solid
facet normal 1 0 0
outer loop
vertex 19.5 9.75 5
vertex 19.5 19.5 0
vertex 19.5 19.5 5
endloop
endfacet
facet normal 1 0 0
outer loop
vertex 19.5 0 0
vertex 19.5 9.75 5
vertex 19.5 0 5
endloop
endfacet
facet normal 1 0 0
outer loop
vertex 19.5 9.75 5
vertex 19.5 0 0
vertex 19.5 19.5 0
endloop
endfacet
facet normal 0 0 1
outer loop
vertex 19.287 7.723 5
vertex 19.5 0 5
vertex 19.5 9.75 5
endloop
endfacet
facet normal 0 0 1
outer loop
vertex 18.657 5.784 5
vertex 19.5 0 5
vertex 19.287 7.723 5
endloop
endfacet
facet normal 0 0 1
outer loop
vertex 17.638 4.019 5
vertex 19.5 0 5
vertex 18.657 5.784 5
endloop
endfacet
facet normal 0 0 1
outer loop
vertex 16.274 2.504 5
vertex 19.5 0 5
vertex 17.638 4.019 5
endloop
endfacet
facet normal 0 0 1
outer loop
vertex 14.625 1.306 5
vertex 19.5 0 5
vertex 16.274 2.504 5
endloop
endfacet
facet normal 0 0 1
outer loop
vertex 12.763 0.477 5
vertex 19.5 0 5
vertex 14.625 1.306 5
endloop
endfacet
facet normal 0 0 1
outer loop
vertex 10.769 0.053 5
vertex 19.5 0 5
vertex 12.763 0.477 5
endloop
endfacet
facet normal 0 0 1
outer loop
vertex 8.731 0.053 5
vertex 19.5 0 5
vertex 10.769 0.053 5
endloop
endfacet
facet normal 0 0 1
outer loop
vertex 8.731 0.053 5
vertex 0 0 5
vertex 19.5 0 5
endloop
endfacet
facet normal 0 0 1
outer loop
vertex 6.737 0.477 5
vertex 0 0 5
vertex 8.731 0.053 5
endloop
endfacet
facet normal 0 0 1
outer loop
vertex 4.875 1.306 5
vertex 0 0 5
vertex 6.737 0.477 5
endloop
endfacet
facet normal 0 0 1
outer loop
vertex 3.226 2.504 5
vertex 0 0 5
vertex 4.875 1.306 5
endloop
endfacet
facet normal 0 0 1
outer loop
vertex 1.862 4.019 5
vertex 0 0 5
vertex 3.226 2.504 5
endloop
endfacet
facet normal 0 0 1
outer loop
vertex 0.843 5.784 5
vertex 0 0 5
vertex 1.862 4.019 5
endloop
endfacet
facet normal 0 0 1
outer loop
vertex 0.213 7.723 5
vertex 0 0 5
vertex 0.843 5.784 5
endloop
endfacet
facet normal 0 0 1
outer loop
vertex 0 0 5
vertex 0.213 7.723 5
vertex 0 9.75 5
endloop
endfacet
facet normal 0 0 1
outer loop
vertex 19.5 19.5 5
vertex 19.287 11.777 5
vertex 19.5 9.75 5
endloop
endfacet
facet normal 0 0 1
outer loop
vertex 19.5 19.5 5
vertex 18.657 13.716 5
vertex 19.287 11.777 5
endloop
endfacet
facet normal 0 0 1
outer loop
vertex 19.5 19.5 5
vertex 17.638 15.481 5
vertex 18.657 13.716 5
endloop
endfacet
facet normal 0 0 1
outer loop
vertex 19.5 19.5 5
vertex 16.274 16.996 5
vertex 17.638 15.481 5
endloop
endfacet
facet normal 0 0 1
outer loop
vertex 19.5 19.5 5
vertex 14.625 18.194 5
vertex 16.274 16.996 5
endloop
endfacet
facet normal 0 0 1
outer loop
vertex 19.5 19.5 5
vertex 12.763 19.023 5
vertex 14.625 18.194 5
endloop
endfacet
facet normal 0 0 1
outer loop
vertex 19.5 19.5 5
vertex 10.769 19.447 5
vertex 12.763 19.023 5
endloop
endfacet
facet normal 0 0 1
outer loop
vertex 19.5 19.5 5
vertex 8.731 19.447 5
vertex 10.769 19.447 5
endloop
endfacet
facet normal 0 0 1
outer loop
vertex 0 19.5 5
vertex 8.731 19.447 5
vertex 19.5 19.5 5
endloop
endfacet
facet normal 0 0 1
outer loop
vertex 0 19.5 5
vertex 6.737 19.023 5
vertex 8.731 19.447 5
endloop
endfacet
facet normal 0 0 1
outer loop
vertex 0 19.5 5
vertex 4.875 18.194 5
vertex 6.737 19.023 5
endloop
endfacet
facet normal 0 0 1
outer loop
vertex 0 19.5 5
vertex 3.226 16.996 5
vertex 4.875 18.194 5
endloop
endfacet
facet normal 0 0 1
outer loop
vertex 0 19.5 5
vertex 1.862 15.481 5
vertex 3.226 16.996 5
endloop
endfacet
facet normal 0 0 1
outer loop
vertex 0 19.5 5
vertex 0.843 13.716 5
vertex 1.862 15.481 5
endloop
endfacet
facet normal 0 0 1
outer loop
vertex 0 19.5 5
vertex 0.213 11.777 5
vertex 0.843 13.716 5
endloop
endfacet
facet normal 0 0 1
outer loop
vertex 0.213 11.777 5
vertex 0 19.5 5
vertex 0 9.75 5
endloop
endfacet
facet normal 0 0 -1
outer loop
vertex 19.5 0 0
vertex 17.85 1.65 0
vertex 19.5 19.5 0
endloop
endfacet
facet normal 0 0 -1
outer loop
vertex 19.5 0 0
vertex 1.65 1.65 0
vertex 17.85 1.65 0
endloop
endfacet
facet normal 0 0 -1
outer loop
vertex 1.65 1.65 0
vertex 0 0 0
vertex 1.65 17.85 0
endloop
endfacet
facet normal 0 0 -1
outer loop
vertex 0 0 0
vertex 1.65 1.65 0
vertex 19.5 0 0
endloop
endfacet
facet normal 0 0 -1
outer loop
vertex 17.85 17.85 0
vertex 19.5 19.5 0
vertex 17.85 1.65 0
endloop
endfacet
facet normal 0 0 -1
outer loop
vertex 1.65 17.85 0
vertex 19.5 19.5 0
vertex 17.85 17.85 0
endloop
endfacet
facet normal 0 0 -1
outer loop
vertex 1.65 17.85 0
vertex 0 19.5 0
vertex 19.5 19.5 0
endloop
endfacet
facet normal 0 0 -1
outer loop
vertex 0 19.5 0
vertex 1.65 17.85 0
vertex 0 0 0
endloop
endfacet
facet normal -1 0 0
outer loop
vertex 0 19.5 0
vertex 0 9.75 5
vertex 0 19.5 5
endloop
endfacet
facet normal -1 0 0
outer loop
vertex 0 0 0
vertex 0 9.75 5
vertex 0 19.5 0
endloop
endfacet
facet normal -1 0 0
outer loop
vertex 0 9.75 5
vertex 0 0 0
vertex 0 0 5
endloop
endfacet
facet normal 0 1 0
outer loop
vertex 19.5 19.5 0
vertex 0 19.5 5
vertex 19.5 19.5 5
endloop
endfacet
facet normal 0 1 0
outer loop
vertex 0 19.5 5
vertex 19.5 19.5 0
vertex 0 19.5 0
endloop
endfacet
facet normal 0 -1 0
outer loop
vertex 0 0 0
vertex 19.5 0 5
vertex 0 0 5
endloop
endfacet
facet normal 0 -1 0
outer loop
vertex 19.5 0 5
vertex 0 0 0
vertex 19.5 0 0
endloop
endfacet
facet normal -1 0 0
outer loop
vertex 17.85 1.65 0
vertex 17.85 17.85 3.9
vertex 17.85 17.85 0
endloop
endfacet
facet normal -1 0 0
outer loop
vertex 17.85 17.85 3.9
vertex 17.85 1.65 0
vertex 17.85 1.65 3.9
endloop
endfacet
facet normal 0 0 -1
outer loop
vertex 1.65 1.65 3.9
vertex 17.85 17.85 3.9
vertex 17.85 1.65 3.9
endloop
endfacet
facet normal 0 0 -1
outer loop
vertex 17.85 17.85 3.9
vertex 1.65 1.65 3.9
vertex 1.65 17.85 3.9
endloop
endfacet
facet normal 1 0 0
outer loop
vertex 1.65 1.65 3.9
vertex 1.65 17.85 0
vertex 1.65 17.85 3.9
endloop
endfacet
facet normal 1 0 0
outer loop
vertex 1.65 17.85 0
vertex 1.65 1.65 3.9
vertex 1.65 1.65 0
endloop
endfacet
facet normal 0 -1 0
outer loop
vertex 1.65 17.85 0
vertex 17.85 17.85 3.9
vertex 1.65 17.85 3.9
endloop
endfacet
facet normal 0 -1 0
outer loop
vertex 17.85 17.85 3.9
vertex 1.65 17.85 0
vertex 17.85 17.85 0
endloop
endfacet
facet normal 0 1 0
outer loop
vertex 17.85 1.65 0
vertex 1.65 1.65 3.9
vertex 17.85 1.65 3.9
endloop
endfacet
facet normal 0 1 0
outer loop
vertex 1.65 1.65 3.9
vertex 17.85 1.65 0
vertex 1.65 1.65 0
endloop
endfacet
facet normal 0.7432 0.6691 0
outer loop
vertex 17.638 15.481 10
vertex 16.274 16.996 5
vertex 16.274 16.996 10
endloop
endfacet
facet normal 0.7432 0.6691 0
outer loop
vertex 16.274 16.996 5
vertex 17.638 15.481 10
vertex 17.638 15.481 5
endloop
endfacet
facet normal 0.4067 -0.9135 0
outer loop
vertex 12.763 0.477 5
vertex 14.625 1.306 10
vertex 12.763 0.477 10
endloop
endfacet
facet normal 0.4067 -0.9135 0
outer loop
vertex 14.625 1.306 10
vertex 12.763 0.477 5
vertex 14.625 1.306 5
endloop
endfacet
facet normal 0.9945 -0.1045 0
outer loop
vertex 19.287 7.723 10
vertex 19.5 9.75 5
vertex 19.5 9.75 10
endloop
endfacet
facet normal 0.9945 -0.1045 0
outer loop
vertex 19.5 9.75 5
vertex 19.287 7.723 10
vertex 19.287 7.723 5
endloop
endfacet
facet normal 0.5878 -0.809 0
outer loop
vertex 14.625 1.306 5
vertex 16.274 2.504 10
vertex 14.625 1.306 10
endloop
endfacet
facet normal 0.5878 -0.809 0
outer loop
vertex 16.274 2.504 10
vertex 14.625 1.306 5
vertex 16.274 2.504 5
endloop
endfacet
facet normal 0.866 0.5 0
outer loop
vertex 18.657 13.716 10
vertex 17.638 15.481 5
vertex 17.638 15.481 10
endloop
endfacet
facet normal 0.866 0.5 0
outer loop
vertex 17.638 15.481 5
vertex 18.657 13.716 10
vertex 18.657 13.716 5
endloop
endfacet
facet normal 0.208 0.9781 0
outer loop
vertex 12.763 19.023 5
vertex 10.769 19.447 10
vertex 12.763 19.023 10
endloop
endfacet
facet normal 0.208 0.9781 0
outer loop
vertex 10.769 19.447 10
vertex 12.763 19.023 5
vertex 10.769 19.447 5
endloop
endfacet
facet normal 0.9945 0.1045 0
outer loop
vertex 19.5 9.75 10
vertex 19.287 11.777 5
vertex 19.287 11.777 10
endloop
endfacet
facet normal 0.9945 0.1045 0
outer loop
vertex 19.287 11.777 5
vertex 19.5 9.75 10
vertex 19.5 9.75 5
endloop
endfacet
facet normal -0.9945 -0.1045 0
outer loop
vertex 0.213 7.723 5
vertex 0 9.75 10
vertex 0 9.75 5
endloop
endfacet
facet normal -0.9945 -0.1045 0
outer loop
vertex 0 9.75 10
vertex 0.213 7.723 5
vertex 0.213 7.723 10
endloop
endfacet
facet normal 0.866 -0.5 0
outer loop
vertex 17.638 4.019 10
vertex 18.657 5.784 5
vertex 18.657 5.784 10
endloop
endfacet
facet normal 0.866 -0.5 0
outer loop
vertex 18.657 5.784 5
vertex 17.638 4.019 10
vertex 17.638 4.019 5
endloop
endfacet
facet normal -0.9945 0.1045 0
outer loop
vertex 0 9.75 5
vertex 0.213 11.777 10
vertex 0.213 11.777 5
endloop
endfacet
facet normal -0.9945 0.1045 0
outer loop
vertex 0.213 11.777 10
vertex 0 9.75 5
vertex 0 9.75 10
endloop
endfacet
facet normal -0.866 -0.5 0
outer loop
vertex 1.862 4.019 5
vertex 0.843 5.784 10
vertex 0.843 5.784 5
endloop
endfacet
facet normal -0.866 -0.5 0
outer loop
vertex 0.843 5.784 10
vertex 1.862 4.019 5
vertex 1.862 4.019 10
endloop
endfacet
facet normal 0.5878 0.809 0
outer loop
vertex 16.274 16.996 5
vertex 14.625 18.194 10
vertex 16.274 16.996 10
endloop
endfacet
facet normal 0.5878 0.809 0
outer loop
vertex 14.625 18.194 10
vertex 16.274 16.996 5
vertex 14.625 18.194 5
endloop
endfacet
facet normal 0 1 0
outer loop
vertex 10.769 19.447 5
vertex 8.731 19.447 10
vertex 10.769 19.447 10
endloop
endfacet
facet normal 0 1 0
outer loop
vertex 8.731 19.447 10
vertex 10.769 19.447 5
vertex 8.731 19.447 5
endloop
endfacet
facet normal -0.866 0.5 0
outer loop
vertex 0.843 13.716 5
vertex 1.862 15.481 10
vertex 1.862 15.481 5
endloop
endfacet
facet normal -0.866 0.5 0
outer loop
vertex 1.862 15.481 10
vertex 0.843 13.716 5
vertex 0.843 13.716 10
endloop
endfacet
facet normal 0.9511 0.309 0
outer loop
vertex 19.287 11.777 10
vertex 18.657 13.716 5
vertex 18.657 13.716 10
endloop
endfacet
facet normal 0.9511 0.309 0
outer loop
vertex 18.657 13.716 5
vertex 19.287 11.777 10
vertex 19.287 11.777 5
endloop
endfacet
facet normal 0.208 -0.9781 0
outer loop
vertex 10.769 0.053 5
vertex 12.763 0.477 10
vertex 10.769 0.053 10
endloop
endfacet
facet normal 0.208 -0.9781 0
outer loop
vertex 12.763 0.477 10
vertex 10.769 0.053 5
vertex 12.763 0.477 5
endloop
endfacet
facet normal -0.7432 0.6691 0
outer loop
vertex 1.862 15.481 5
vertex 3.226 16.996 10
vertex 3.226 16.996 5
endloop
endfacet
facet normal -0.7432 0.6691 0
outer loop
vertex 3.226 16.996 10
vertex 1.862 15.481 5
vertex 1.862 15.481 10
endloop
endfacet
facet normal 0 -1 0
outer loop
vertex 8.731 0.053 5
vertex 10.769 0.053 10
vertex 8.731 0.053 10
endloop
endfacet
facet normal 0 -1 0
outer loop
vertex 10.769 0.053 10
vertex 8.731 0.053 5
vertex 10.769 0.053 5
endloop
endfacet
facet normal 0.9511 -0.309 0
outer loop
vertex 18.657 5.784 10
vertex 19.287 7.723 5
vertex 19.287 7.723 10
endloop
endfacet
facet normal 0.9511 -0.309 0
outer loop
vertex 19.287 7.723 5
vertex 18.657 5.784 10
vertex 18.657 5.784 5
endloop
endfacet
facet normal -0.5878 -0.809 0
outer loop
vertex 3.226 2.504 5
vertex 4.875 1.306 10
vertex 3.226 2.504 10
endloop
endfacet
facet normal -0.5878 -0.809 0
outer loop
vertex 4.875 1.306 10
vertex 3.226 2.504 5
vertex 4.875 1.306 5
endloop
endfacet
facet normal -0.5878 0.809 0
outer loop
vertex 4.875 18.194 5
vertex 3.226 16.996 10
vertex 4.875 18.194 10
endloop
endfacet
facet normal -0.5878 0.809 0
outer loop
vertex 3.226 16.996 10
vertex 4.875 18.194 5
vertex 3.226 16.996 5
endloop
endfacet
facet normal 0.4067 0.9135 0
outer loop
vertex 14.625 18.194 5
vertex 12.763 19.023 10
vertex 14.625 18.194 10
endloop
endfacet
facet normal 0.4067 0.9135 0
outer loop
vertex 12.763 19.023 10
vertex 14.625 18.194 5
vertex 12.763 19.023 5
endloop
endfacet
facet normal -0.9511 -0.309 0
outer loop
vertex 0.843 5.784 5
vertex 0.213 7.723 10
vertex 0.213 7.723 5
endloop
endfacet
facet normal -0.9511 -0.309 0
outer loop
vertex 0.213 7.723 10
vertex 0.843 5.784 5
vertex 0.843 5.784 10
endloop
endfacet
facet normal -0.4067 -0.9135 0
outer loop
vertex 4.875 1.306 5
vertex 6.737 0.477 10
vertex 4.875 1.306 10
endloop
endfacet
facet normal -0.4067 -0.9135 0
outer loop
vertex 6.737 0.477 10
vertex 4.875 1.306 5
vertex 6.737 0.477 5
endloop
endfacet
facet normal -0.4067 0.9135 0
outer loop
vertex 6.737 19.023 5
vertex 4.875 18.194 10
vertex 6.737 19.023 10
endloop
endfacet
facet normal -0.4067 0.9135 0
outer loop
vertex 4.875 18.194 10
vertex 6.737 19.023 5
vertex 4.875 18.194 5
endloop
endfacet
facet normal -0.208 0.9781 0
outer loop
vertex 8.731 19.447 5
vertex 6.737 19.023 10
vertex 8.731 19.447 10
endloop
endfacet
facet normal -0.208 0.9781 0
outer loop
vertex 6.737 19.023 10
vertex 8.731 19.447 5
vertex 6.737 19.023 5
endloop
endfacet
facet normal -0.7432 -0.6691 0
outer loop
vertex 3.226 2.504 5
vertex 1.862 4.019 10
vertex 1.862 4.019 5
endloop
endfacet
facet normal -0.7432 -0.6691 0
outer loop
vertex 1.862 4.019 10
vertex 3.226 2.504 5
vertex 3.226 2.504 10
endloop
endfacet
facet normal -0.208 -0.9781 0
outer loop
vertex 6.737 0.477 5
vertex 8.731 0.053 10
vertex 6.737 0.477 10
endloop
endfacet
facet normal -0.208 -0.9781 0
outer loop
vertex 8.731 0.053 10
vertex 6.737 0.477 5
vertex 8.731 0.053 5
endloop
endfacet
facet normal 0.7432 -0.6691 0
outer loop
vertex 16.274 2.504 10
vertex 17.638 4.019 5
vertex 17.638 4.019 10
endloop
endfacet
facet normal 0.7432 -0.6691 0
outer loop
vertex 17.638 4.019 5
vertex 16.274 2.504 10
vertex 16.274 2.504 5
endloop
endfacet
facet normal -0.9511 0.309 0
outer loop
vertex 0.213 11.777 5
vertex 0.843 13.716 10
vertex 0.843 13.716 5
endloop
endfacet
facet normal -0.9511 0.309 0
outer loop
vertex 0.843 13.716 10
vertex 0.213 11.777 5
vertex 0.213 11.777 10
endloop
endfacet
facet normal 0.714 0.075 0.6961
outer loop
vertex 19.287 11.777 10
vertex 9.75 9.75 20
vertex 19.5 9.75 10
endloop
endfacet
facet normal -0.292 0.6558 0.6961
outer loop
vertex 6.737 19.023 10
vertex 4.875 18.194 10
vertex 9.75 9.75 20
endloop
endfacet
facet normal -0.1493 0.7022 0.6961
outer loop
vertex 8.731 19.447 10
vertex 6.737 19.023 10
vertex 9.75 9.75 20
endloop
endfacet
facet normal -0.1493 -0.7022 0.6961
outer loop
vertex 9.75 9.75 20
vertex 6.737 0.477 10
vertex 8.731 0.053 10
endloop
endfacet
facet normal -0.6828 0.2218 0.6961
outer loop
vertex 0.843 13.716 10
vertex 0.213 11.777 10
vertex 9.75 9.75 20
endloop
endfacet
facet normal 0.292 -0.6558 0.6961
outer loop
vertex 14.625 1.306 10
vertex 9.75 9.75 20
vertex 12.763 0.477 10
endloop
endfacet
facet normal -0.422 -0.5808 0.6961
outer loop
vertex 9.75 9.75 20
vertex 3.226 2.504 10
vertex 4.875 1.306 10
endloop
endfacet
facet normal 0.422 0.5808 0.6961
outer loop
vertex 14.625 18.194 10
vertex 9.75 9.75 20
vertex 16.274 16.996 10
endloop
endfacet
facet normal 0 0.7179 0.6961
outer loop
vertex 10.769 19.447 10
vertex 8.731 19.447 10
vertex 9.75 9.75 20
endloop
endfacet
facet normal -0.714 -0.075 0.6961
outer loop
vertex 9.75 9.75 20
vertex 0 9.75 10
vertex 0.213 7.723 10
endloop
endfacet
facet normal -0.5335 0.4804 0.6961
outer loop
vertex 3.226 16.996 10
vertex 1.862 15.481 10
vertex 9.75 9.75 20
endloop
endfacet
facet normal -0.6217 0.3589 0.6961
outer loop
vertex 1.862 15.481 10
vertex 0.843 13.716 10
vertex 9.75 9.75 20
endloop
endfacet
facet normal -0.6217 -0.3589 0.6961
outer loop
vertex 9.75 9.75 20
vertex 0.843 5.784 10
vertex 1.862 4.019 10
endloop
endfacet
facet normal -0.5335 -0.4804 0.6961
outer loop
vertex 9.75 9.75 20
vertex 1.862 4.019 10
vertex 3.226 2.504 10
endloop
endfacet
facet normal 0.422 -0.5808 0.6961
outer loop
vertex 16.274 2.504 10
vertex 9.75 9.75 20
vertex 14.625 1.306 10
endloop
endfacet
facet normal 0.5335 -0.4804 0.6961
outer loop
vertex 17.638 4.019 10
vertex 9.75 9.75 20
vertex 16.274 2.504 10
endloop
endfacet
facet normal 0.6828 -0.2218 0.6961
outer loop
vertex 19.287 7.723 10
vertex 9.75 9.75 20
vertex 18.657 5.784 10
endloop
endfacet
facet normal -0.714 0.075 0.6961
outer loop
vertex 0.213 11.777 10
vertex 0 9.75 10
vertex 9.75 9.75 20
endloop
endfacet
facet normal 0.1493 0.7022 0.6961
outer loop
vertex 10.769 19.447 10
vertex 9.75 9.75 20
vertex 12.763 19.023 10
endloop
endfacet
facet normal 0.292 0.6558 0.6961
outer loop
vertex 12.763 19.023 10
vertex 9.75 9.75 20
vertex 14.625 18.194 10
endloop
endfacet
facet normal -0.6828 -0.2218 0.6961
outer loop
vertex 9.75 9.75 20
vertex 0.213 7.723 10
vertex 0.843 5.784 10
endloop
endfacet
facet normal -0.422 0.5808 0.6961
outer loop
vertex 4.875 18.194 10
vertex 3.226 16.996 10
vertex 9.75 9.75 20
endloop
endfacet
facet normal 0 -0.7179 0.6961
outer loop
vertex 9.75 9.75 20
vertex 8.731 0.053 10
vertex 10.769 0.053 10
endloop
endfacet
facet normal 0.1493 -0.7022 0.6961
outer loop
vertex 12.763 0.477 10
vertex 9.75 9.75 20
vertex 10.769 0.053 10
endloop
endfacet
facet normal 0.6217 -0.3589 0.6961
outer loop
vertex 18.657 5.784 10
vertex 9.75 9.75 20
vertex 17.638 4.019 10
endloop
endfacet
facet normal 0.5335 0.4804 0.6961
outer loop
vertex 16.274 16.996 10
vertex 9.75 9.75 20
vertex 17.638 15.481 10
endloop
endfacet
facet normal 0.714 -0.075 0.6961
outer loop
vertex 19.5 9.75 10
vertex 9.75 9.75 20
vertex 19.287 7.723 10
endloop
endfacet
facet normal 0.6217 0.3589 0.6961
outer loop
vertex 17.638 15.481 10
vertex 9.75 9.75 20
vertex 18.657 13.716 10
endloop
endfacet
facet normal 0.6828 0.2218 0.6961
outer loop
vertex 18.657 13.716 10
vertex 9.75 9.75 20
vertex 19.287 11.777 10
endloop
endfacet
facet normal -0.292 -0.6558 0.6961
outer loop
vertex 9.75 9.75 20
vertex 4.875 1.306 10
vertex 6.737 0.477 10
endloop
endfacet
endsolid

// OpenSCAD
// file: CommonModules.scad
//    $$$$$$\   $$$$$$\   $$$$$$\  $$\   $$\ $$$$$$\ $$$$$$$\  $$$$$$$$\ 
//    $$  __$$\ $$  __$$\ $$  __$$\ $$ |  $$ |\_$$  _|$$  __$$\ $$  _____|
//    $$ /  $$ |$$ /  \__|$$ /  $$ |$$ |  $$ |  $$ |  $$ |  $$ |$$ |      
//    $$$$$$$$ |$$ |      $$ |  $$ |$$ |  $$ |  $$ |  $$$$$$$  |$$$$$\    
//    $$  __$$ |$$ |      $$ |  $$ |$$ |  $$ |  $$ |  $$  __$$< $$  __|   
//    $$ |  $$ |$$ |  $$\ $$ $$\$$ |$$ |  $$ |  $$ |  $$ |  $$ |$$ |      
//    $$ |  $$ |\$$$$$$  |\$$$$$$ / \$$$$$$  |$$$$$$\ $$ |  $$ |$$$$$$$$\ 
//    \__|  \__| \______/  \___$$$\  \______/ \______|\__|  \__|\________|
//                            \___|                                      
//      
//       Print and play - OpenScad project - by Bekkalizer - GPLv3
// 
// This file is part of the Acquire stl project.
// Copyright (C) 2025 Bekkalizer
//
// Acquire stl project is free software: you can redistribute it and/or modify
// it under the terms of the GNU General Public License as published
// by the Free Software Foundation, either version 3 of the License,
// or (at your option) any later version.
//
// Acquire stl project is distributed in the hope that it will be useful,
// but WITHOUT ANY WARRANTY; without even the implied warranty of
// MERCHANTABILITY or FITNESS FOR A PARTICULAR PURPOSE. See the
// GNU General Public License for more details.
//
// You should have received a copy of the GNU General Public License
// along with this program. If not, see <https://www.gnu.org/licenses/>.

module cube_with_extruded_bottom( cube_size = [19.5, 19.5, 5] ) {
    //Main build script parameters:
    max_width = 19.2;
    top_lip = 2;
    top_height = 3;
    //Calculated hole size:
    inside_margins = 1;
    hole_width = max_width - 2 * (top_lip) + inside_margins;
    hole_height = top_height + inside_margins;
    
    hole_size = [hole_width, hole_width, hole_height]; // Hole dimensions (same height as cube)
    hole_offset = [(cube_size[0] - hole_size[0]) / 2, (cube_size[1] - hole_size[1]) / 2, -0.1]; // Centered on bottom
    difference() {
        // Main Cube
        cube(cube_size);
        
        // Hole Cube (subtracting from bottom)
        translate(hole_offset)
            cube(hole_size);
    }
}
// main file
//    $$$$$$\   $$$$$$\   $$$$$$\  $$\   $$\ $$$$$$\ $$$$$$$\  $$$$$$$$\ 
//    $$  __$$\ $$  __$$\ $$  __$$\ $$ |  $$ |\_$$  _|$$  __$$\ $$  _____|
//    $$ /  $$ |$$ /  \__|$$ /  $$ |$$ |  $$ |  $$ |  $$ |  $$ |$$ |      
//    $$$$$$$$ |$$ |      $$ |  $$ |$$ |  $$ |  $$ |  $$$$$$$  |$$$$$\    
//    $$  __$$ |$$ |      $$ |  $$ |$$ |  $$ |  $$ |  $$  __$$< $$  __|   
//    $$ |  $$ |$$ |  $$\ $$ $$\$$ |$$ |  $$ |  $$ |  $$ |  $$ |$$ |      
//    $$ |  $$ |\$$$$$$  |\$$$$$$ / \$$$$$$  |$$$$$$\ $$ |  $$ |$$$$$$$$\ 
//    \__|  \__| \______/  \___$$$\  \______/ \______|\__|  \__|\________|
//                            \___|                                      
//      
//       Print and play - OpenScad project - by Bekkalizer - GPLv3
// 
// This file is part of the Acquire stl project.
// Copyright (C) 2025 Bekkalizer
//
// Acquire stl project is free software: you can redistribute it and/or modify
// it under the terms of the GNU General Public License as published
// by the Free Software Foundation, either version 3 of the License,
// or (at your option) any later version.
//
// Acquire stl project is distributed in the hope that it will be useful,
// but WITHOUT ANY WARRANTY; without even the implied warranty of
// MERCHANTABILITY or FITNESS FOR A PARTICULAR PURPOSE. See the
// GNU General Public License for more details.
//
// You should have received a copy of the GNU General Public License
// along with this program. If not, see <https://www.gnu.org/licenses/>.

use <CommonModules.scad>

// ============== Parameters ==============

tent_height = 15;
tent_wall_height = 5;

// Parameters
bottom_width = 19.5;
bottom_height = 5;

tent_radius = bottom_width/2;


union () {
    cube_with_extruded_bottom([bottom_width, bottom_width, bottom_height]);

    translate([tent_radius,tent_radius,bottom_height])
        cylinder(h = tent_wall_height, r = tent_radius);
    translate([tent_radius,tent_radius,bottom_height+tent_wall_height])
        cylinder(h = tent_height-tent_wall_height, r1 = tent_radius, r2 = 0);
}
